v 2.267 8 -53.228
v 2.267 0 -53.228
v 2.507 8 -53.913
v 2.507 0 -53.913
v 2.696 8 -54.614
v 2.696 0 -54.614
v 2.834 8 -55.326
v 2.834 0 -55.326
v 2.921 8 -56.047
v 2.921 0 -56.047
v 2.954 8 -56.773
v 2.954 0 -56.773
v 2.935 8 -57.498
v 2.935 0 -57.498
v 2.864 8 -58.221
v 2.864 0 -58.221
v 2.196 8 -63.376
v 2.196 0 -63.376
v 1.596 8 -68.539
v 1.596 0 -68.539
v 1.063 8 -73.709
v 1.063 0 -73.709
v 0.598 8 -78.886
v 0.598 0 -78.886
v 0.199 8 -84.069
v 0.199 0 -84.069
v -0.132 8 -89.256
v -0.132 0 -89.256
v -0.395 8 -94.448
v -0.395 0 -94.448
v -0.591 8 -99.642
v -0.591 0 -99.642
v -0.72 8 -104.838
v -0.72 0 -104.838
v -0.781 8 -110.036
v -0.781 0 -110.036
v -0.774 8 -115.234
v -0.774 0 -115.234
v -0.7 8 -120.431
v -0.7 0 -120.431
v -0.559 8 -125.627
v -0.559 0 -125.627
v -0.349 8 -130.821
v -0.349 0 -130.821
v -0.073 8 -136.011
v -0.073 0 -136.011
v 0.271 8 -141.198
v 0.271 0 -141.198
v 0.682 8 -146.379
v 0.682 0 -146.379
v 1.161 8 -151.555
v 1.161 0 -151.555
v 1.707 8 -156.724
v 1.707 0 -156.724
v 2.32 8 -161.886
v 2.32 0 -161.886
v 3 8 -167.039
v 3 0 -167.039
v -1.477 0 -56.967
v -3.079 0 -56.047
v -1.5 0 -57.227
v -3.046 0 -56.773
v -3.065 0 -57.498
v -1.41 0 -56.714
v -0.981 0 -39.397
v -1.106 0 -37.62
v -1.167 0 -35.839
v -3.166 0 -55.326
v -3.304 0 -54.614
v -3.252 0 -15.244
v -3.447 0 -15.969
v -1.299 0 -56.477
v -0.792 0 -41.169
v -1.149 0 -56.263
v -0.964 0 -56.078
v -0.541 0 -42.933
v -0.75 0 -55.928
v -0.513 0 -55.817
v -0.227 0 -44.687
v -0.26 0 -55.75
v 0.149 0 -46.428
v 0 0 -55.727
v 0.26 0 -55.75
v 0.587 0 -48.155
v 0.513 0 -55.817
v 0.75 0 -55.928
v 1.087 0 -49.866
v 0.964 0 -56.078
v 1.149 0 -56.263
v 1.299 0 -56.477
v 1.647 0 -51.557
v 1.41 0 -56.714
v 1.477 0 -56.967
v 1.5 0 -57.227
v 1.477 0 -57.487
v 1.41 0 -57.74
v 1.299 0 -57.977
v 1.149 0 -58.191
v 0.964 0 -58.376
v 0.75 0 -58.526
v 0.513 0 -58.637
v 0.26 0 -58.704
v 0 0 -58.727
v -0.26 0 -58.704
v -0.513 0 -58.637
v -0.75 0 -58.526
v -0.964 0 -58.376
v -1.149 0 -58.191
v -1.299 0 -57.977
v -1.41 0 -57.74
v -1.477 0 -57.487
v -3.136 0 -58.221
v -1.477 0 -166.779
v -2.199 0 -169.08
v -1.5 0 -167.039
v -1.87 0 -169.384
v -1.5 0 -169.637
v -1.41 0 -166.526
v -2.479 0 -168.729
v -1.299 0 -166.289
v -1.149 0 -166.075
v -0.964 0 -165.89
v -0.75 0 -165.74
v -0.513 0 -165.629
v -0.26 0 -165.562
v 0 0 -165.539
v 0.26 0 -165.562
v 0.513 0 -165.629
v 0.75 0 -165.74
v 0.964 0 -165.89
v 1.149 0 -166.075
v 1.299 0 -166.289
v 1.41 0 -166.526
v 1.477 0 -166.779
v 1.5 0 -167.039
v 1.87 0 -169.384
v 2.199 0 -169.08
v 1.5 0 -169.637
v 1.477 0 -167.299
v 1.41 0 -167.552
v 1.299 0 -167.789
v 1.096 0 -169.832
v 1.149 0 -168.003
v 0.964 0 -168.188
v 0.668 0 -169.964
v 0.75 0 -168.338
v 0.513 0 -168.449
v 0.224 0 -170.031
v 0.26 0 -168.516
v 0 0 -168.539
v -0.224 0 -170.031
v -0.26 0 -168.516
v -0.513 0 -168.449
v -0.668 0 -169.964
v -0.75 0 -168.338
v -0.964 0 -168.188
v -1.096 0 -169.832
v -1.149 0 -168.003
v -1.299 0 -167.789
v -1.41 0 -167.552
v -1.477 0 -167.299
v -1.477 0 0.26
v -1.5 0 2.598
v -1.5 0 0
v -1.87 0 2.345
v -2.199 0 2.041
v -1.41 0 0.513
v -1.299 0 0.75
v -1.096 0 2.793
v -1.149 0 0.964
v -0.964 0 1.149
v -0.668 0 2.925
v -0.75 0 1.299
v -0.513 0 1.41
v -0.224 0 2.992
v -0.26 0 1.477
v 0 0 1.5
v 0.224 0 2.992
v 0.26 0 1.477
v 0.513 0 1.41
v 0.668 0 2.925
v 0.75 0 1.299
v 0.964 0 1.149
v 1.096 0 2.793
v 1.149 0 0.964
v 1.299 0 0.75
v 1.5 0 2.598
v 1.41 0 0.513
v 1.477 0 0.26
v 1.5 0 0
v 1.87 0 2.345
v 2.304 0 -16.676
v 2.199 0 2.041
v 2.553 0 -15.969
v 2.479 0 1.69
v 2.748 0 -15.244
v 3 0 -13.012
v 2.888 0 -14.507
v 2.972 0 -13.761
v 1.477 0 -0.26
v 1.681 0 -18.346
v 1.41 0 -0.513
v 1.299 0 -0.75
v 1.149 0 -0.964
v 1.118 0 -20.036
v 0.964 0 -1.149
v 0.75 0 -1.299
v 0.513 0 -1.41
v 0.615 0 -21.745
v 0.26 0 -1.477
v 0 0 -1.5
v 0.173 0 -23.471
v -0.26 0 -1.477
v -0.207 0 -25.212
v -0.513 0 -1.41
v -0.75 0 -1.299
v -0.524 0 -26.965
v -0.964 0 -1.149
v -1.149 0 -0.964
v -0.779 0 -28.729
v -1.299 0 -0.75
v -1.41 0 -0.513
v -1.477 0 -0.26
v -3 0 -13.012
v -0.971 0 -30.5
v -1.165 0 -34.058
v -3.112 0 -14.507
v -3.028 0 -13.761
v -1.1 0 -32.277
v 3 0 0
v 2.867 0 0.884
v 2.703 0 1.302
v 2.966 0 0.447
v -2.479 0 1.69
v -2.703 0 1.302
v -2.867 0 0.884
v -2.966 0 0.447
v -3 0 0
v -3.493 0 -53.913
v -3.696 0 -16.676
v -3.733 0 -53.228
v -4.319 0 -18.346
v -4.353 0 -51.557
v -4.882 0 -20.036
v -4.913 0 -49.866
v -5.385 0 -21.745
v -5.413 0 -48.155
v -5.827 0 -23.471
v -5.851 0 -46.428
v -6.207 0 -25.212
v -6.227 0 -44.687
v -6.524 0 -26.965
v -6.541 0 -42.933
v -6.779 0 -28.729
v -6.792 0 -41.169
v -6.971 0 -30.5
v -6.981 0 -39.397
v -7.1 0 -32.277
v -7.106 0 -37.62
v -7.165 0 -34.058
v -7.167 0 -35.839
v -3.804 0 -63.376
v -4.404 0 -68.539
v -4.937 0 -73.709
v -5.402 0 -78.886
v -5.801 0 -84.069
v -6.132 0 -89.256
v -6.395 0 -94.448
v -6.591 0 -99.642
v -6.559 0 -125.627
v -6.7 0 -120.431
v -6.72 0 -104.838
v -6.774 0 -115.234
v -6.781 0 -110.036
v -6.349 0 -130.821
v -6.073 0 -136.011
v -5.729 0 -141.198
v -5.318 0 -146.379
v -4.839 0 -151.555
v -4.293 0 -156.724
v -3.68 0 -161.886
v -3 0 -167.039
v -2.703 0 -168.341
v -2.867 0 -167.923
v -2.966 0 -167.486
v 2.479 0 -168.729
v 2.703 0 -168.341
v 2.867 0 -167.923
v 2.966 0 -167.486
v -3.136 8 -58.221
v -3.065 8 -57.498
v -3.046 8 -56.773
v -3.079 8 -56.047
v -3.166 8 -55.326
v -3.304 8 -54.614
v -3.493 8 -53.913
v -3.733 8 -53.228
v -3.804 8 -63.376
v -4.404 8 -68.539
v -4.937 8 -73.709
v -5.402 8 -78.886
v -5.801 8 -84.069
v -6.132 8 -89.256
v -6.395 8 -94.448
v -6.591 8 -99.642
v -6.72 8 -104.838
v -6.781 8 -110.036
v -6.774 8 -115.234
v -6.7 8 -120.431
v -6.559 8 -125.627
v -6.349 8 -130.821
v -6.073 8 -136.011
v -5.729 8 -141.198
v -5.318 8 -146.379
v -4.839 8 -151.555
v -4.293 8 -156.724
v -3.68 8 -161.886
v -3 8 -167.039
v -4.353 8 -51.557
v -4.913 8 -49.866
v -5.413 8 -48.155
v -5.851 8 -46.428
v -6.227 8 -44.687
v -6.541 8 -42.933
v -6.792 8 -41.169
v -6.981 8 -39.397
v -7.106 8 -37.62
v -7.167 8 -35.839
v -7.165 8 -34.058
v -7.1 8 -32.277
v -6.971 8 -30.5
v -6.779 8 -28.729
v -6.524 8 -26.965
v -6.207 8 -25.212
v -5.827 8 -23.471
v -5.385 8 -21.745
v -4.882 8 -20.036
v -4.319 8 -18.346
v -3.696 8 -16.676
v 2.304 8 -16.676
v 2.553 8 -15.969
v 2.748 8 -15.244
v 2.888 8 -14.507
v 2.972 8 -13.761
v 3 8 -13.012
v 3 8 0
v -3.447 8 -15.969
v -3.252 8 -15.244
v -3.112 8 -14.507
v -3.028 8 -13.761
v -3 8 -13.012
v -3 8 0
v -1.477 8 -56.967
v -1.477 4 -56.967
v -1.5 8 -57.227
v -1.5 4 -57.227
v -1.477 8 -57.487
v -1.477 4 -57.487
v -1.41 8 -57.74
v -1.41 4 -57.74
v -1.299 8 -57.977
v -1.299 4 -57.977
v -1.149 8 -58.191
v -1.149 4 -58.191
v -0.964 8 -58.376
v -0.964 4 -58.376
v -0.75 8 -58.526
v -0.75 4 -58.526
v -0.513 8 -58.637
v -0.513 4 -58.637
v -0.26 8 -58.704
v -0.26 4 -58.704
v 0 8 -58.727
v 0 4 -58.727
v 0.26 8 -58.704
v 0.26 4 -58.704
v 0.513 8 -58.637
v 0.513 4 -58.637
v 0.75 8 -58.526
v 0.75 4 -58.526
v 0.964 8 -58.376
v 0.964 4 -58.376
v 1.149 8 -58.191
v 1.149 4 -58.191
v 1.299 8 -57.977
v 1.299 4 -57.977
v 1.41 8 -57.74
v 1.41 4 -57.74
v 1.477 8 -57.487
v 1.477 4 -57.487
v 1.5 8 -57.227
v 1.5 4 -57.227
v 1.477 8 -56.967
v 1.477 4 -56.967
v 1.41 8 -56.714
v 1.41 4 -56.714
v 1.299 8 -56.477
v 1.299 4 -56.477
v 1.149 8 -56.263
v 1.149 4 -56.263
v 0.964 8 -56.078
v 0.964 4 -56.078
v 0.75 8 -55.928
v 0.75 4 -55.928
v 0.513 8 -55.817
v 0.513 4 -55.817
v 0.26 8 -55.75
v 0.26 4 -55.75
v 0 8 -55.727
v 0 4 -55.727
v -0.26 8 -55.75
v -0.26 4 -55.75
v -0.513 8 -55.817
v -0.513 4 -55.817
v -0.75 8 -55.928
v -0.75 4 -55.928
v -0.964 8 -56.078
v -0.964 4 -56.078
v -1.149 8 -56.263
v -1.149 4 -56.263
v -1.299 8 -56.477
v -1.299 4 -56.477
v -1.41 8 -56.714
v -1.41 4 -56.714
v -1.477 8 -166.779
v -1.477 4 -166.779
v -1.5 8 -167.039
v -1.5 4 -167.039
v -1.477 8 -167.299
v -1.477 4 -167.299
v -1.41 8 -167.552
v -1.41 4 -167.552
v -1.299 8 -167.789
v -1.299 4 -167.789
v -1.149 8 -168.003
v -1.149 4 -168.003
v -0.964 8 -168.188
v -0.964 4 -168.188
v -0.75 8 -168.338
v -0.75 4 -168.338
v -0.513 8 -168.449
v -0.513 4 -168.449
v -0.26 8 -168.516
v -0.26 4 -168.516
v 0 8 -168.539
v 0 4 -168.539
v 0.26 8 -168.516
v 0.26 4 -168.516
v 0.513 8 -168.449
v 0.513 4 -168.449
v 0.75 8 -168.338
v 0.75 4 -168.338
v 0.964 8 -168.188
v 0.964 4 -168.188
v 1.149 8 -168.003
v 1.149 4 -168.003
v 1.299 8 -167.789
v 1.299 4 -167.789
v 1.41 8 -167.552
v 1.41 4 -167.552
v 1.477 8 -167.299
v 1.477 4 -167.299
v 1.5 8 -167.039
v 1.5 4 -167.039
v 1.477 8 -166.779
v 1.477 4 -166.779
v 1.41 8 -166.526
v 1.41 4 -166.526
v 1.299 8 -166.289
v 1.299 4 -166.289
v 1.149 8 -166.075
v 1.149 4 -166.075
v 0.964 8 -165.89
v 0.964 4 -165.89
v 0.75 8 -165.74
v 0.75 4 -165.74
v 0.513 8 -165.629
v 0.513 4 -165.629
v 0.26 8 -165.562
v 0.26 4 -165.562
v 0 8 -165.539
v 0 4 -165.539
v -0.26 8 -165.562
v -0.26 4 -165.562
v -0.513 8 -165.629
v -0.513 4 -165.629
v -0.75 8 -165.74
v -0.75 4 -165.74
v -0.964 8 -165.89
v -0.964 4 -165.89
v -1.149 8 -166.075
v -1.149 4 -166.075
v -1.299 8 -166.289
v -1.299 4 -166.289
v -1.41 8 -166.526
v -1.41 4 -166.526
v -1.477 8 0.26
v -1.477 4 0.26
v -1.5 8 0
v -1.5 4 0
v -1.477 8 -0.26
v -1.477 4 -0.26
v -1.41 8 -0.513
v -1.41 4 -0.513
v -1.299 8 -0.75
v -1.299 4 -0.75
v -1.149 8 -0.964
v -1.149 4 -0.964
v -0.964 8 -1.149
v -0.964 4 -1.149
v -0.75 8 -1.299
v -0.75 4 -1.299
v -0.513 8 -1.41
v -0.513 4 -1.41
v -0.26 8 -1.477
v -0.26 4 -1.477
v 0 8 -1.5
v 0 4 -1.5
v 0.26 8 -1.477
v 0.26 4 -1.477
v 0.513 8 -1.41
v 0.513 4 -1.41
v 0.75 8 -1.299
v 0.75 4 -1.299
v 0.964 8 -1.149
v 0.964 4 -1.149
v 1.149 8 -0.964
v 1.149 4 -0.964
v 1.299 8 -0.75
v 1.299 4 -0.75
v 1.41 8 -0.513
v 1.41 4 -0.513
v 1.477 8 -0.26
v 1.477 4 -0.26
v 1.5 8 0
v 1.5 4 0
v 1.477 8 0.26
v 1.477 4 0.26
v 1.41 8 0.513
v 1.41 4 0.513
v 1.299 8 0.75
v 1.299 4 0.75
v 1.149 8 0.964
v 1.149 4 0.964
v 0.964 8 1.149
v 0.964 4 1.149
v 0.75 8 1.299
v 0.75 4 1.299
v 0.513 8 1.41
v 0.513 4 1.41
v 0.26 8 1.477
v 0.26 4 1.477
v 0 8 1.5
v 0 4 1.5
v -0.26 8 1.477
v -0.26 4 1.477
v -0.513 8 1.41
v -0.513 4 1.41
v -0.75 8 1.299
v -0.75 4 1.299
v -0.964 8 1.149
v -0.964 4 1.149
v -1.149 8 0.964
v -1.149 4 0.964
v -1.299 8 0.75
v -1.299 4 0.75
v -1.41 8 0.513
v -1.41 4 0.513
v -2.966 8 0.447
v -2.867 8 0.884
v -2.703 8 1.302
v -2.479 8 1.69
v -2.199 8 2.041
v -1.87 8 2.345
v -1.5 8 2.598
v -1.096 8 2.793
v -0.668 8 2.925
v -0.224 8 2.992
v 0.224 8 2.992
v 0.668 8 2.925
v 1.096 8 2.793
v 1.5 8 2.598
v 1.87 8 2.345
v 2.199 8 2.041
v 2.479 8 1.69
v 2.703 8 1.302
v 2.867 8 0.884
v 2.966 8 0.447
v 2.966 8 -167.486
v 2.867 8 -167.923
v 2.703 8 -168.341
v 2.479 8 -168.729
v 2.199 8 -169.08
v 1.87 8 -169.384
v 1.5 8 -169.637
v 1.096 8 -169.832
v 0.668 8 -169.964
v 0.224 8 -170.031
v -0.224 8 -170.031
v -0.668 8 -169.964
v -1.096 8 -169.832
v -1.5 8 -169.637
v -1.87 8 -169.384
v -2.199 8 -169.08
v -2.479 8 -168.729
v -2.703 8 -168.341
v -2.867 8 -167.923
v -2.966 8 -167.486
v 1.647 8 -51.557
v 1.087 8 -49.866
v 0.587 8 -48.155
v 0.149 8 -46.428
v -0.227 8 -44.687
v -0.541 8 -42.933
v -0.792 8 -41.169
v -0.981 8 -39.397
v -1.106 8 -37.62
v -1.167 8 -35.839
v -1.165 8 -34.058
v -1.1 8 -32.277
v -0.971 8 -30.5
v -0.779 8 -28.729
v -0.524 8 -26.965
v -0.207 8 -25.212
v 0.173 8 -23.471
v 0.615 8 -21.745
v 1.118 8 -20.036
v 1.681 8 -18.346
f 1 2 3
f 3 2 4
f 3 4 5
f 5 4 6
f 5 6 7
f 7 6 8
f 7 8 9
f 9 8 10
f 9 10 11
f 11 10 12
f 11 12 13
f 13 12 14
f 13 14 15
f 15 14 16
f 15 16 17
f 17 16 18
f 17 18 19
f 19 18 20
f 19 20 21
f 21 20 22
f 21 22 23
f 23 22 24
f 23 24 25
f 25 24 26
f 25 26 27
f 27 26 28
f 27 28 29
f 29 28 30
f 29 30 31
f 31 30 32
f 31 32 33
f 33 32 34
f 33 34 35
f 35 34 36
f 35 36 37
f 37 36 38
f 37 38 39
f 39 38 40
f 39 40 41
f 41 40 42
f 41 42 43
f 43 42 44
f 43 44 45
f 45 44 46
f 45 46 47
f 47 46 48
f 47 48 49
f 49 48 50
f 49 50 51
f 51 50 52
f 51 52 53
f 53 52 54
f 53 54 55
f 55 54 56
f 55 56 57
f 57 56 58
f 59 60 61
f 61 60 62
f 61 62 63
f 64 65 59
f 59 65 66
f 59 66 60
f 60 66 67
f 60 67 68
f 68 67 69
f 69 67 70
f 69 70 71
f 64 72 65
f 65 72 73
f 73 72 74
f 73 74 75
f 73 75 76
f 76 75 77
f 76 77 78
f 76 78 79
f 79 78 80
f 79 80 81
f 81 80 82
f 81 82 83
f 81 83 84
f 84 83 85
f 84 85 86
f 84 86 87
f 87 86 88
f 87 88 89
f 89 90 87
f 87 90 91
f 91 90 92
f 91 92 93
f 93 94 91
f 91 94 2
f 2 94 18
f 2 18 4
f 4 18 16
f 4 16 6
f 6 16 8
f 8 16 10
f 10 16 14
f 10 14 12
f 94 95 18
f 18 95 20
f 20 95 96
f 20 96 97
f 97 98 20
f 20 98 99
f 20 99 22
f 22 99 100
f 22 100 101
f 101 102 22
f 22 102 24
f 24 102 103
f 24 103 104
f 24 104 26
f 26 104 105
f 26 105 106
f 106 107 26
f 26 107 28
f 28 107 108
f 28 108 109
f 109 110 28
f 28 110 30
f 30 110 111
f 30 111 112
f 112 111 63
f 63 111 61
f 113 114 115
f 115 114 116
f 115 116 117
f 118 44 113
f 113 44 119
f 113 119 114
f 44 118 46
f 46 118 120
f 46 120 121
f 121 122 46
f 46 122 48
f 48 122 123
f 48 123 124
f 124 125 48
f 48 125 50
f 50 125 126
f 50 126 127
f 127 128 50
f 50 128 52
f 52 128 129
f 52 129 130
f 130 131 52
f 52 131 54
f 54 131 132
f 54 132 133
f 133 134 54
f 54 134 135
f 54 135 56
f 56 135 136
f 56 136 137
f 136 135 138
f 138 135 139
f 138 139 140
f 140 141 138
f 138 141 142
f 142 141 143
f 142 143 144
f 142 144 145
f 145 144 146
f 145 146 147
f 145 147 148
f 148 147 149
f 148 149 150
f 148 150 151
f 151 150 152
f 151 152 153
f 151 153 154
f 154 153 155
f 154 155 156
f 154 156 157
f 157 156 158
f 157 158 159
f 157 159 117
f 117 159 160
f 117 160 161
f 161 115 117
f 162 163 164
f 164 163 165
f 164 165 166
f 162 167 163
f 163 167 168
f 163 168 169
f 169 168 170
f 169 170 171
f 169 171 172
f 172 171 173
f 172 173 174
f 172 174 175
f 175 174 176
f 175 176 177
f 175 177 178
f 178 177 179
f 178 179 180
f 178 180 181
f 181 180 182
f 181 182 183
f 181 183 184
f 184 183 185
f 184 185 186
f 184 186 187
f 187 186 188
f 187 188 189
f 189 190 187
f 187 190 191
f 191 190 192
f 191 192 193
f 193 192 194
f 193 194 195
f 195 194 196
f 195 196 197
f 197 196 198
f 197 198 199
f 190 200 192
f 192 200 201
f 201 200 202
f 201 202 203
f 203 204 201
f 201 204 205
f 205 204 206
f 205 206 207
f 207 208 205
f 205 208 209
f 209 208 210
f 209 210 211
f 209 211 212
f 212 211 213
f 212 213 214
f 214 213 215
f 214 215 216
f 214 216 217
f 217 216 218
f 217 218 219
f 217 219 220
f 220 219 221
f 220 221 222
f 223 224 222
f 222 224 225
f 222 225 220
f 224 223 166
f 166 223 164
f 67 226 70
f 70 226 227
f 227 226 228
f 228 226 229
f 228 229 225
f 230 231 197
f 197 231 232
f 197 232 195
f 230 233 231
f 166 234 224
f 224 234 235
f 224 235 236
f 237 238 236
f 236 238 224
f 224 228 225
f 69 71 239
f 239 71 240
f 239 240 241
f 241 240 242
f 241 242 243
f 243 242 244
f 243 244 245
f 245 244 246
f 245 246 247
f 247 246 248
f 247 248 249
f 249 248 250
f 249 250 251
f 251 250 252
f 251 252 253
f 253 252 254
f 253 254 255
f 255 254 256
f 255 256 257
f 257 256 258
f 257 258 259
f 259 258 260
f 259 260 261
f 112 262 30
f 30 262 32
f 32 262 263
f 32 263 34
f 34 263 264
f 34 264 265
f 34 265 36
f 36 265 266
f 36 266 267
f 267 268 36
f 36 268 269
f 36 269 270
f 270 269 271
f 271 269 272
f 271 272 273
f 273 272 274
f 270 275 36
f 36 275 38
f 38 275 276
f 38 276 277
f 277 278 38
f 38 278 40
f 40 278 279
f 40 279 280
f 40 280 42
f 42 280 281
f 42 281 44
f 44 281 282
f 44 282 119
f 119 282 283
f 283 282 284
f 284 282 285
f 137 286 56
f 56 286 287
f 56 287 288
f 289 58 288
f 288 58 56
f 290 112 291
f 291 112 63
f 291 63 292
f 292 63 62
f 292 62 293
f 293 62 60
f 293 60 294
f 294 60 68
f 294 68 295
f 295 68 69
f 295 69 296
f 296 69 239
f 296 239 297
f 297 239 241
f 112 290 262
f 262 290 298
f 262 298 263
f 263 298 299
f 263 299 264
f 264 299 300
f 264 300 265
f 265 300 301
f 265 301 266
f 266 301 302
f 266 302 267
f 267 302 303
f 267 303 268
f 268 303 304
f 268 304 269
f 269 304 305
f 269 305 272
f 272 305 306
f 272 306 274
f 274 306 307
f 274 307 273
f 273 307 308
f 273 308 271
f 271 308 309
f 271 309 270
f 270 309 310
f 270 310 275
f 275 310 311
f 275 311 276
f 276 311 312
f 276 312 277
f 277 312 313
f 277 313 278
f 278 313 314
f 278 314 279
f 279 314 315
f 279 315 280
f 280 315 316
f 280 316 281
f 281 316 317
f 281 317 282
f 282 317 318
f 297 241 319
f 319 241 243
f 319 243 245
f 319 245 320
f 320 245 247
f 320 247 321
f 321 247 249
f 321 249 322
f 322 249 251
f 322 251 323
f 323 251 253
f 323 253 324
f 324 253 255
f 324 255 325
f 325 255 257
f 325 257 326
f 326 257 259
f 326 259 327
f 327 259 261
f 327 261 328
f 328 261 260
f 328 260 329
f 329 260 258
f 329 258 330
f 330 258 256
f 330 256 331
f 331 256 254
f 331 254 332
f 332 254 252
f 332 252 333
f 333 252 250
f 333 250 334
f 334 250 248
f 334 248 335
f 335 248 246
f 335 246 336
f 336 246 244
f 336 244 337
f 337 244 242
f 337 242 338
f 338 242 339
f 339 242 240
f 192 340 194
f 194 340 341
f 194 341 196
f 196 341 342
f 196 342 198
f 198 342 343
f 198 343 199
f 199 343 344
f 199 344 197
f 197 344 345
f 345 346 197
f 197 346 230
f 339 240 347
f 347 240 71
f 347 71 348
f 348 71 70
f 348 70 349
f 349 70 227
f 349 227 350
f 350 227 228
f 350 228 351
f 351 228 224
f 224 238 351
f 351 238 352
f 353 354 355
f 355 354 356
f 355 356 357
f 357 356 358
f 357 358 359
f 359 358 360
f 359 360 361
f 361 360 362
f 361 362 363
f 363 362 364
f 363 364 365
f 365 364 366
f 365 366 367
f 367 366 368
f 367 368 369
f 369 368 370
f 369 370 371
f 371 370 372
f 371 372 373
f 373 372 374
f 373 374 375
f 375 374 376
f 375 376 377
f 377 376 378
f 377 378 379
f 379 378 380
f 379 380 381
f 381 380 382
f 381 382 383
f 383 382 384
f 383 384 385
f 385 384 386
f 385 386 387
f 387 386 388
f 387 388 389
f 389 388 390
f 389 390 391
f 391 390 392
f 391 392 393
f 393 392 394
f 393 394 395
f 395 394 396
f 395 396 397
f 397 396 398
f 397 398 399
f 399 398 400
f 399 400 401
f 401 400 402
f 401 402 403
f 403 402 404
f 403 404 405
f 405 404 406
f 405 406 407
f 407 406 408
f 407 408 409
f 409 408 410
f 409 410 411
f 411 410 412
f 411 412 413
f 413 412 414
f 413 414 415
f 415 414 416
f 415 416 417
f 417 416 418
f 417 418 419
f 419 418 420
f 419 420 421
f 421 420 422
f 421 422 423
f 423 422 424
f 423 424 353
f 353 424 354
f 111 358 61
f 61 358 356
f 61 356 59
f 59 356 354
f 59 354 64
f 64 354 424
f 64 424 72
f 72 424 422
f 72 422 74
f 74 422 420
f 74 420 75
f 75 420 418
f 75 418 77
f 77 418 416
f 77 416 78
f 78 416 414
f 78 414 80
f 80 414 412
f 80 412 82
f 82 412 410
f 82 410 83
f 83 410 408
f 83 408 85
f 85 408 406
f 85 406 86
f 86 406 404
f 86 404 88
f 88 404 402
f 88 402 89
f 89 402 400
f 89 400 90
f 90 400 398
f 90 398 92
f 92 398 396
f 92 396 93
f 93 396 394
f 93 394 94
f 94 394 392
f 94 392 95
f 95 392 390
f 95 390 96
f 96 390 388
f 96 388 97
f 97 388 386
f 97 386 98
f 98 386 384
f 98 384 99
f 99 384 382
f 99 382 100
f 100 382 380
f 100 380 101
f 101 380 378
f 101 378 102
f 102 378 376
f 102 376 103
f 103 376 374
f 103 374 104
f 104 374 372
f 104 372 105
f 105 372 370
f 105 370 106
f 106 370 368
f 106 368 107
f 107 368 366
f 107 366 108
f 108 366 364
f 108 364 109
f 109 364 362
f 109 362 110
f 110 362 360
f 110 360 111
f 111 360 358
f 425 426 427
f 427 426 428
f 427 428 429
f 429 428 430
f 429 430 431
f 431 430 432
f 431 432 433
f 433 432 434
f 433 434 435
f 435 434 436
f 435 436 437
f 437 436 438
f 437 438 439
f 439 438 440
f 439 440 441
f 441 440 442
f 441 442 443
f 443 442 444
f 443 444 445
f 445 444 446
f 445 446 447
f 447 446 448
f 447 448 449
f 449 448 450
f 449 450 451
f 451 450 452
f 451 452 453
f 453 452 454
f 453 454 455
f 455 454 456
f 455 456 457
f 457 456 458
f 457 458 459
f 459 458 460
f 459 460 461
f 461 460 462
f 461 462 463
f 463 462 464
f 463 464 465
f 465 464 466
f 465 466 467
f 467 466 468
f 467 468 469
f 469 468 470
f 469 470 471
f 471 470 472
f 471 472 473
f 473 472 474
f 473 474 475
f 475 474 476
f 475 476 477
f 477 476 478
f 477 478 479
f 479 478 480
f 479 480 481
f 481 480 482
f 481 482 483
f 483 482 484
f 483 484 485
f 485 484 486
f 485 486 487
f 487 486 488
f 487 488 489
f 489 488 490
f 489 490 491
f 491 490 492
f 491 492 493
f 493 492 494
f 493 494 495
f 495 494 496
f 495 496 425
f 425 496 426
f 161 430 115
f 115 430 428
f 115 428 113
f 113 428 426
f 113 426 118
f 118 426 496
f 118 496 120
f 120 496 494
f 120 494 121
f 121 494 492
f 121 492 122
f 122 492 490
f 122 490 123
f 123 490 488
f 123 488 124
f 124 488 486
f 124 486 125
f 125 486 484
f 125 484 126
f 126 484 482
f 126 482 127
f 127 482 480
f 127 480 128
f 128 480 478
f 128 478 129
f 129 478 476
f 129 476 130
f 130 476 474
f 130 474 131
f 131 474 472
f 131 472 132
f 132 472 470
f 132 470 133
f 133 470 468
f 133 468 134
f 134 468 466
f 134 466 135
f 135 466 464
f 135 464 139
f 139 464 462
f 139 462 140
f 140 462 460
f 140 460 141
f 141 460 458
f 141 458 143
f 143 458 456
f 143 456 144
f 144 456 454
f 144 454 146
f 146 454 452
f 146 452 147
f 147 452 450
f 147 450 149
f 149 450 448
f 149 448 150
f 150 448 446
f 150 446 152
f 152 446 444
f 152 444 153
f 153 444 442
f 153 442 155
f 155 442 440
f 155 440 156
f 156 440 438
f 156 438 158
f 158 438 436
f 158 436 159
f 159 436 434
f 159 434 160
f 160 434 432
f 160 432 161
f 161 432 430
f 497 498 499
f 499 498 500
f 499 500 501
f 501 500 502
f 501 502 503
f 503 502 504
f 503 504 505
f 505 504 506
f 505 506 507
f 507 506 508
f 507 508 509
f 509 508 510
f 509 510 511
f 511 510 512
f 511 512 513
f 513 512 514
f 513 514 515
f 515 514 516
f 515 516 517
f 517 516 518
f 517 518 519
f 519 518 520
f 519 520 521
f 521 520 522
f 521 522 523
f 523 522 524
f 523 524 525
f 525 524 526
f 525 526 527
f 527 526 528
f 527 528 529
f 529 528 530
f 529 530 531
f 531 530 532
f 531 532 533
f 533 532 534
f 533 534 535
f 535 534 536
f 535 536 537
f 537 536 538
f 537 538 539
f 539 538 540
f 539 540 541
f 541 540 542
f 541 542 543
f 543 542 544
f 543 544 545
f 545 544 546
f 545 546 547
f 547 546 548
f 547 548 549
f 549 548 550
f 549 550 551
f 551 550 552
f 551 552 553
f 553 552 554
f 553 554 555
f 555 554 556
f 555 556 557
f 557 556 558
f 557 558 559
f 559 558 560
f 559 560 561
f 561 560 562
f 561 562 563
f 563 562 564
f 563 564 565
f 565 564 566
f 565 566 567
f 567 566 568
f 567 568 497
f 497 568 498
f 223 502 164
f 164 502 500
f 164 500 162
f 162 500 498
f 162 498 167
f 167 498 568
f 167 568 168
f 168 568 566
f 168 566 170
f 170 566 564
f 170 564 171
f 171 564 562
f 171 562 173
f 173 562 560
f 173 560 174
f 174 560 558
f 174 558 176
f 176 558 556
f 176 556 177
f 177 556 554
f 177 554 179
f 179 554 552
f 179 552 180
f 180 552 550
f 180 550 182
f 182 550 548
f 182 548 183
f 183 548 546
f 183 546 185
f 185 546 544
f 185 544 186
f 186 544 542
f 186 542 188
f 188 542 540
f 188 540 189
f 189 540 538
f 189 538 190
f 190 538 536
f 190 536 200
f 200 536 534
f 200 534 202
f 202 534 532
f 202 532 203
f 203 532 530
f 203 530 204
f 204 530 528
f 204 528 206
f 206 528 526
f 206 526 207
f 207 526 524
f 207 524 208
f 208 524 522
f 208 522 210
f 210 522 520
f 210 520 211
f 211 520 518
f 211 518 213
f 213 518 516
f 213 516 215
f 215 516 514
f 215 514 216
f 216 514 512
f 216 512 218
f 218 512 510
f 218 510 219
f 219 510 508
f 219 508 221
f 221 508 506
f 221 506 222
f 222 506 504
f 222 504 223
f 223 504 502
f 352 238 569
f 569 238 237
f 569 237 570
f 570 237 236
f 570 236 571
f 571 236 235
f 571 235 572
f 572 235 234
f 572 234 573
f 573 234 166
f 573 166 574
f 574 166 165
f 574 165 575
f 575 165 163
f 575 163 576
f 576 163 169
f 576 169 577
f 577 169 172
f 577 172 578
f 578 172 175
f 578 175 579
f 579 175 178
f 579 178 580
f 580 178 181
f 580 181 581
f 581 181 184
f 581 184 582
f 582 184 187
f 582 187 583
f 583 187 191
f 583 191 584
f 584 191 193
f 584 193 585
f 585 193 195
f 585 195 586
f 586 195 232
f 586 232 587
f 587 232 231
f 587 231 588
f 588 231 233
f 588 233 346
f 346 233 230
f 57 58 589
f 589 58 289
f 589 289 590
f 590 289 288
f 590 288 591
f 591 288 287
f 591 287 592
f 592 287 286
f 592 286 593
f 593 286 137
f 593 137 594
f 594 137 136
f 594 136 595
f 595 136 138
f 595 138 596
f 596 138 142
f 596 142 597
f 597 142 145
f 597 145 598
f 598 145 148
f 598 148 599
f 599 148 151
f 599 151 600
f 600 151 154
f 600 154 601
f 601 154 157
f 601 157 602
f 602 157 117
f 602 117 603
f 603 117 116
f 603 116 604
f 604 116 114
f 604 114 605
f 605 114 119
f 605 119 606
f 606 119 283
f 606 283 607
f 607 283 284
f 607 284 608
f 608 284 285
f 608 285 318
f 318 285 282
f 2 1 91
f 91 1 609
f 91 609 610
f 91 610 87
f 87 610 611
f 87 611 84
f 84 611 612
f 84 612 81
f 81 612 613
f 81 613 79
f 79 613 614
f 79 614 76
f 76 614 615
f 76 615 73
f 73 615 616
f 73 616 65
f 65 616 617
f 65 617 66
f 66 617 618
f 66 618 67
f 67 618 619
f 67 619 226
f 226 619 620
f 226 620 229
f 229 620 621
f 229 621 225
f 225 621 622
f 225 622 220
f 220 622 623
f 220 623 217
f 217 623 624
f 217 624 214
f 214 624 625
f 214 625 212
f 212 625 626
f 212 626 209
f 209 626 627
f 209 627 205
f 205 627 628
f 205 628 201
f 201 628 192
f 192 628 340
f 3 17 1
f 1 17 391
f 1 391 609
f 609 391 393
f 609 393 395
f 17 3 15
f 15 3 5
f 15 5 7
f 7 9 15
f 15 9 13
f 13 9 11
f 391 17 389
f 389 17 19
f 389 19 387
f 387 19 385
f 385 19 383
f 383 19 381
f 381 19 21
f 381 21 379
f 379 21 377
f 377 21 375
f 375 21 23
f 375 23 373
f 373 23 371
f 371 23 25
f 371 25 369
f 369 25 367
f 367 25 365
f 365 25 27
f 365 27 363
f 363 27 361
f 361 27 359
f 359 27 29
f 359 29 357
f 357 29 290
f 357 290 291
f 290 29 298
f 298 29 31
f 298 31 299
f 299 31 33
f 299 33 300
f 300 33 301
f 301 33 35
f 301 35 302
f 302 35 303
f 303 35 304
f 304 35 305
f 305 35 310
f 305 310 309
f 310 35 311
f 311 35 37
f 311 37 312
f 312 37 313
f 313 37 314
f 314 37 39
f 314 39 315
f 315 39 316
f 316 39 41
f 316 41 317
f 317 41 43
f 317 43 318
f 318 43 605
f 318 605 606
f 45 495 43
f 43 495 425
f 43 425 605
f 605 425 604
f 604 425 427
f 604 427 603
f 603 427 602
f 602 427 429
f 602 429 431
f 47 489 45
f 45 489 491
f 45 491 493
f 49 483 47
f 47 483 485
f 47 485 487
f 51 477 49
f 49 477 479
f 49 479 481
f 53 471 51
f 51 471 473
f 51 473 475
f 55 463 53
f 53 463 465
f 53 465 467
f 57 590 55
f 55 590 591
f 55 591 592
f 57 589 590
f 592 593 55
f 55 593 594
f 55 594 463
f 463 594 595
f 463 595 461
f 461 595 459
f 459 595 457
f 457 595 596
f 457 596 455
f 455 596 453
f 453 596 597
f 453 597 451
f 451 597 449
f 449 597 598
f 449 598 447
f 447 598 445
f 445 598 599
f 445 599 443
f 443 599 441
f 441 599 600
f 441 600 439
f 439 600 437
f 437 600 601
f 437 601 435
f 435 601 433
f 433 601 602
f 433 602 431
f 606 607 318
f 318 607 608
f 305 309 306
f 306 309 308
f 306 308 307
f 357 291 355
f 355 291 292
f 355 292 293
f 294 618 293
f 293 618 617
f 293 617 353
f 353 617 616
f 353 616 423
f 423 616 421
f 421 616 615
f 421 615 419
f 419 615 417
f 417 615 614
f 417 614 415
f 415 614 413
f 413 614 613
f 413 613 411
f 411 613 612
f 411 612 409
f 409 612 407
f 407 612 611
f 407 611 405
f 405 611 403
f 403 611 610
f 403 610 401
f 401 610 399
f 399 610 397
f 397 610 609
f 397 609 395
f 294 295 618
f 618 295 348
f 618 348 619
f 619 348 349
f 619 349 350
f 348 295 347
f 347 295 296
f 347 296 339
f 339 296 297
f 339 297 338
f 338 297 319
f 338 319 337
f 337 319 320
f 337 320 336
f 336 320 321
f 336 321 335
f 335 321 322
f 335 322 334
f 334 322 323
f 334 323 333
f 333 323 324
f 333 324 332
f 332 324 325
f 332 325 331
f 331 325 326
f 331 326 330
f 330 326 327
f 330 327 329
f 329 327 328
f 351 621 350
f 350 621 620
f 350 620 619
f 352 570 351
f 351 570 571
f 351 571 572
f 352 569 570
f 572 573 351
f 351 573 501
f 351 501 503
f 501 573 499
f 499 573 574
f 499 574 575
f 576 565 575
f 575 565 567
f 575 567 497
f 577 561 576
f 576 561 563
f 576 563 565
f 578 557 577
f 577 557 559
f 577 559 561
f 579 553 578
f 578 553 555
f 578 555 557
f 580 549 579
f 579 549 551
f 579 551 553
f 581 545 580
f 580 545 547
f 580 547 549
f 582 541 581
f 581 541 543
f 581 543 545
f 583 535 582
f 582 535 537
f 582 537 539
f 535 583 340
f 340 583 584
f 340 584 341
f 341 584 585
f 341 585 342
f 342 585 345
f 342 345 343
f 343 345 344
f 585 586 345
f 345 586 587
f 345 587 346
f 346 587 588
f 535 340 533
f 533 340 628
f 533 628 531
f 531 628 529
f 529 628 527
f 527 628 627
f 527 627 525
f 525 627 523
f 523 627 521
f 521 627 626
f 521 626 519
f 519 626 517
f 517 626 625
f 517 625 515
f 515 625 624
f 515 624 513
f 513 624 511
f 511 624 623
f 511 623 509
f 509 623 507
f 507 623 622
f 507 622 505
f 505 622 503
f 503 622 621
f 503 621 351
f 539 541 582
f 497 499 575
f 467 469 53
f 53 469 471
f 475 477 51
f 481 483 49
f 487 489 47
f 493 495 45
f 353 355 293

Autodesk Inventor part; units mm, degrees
ref_plane "YZ Plane" through (0, 0, 0) normal (1, 0, 0) x (0, 1, 0)
ref_plane "XZ Plane" through (0, 0, 0) normal (0, 1, 0) x (-1, 0, 0)
ref_plane "XY Plane" through (0, 0, 0) normal (0, 0, 1) x (1, 0, 0)
sketch "Sketch1" plane through (0, 0, 0) normal (0, 1, 0) x (-1, 0, 0)
  line L0 (0, 0) -> (0, -167.039) construction
  line L1 (-3, 0) -> (-3, -167.039)
  line L2 (3, -167.039) -> (3, 0)
  arc A0 (3, 0) -> (-3, 0) centre (0, 0) ccw
  arc A1 (-3, -167.039) -> (3, -167.039) centre (0, -167.039) ccw
  circle A2 centre (0, 0) radius 1.5
  circle A3 centre (0, -167.039) radius 1.5
  circle A4 centre (0, -57.227) radius 1.5
  arc A5 (3, -167.039) -> (3, -57.227) centre (-393.2137, -112.133) ccw
  arc A6 (-3, -167.039) -> (-3, -57.227) centre (-399.2137, -112.133) ccw
  arc A7 (-3, -55) -> (-3, -15) centre (-48.8258, -35) ccw
  arc A8 (3, -55) -> (3, -15) centre (-42.8258, -35) ccw
  point P0 (0, -83.5195)
  dimension "d0" = 167.039
  dimension "d1" = 6
  dimension "d2" = 3
  dimension "d3" = 3
  dimension "d10" = 3
  dimension "d11" = 57.227
  dimension "d12" = 400
  dimension "d13" = 400
  dimension "d16" = 15
  dimension "d17" = 55
  dimension "d18" = 50
  dimension "d19" = 50
extrude "Extrusion1" add sketch "Sketch1" along normal blind 8 contours A0 L2 A1 A6 L1 A7 | A8 L2 | A5 L2
fillet "Fillet1" radius 10 6 edges at (-3, 4, -15) (3, 4, -15) (-3, 4, -55) (3, 4, -55) (-3, 4, -57.227) (3, 4, -57.227)
sketch "Sketch2" plane through (0, 0, 0) normal (0, -1, 0) x (1, 0, 0)
  circle A0 centre (0, -57.227) radius 1.5 projected
  circle A1 centre (0, -167.039) radius 1.5 projected
  circle A2 centre (0, 0) radius 1.5 projected
  arc A3 (2.8635, -58.2209) -> (2.2666, -53.2276) centre (-7.0452, -56.8731) ccw projected
  arc A4 (2.3043, -16.6764) -> (2.2666, -53.2276) centre (48.8258, -35) ccw projected
  arc A5 (2.3043, -16.6764) -> (3, -13.0117) centre (-7, -13.0117) ccw projected
  line L0 (3, 0) -> (3, -13.0117) projected
  arc A6 (3, 0) -> (-3, 0) centre (0, 0) ccw projected
  line L1 (-3, -13.0117) -> (-3, 0) projected
  arc A7 (-3.6957, -16.6764) -> (-3, -13.0117) centre (-13, -13.0117) ccw projected
  arc A8 (-3.6957, -16.6764) -> (-3.7334, -53.2276) centre (42.8258, -35) ccw projected
  arc A9 (-3.1365, -58.2209) -> (-3.7334, -53.2276) centre (-13.0452, -56.8731) ccw projected
  arc A10 (-3.1365, -58.2209) -> (-3, -167.039) centre (393.2137, -112.133) ccw projected
  arc A11 (-3, -167.039) -> (3, -167.039) centre (0, -167.039) ccw projected
  arc A12 (2.8635, -58.2209) -> (3, -167.039) centre (399.2137, -112.133) ccw projected
